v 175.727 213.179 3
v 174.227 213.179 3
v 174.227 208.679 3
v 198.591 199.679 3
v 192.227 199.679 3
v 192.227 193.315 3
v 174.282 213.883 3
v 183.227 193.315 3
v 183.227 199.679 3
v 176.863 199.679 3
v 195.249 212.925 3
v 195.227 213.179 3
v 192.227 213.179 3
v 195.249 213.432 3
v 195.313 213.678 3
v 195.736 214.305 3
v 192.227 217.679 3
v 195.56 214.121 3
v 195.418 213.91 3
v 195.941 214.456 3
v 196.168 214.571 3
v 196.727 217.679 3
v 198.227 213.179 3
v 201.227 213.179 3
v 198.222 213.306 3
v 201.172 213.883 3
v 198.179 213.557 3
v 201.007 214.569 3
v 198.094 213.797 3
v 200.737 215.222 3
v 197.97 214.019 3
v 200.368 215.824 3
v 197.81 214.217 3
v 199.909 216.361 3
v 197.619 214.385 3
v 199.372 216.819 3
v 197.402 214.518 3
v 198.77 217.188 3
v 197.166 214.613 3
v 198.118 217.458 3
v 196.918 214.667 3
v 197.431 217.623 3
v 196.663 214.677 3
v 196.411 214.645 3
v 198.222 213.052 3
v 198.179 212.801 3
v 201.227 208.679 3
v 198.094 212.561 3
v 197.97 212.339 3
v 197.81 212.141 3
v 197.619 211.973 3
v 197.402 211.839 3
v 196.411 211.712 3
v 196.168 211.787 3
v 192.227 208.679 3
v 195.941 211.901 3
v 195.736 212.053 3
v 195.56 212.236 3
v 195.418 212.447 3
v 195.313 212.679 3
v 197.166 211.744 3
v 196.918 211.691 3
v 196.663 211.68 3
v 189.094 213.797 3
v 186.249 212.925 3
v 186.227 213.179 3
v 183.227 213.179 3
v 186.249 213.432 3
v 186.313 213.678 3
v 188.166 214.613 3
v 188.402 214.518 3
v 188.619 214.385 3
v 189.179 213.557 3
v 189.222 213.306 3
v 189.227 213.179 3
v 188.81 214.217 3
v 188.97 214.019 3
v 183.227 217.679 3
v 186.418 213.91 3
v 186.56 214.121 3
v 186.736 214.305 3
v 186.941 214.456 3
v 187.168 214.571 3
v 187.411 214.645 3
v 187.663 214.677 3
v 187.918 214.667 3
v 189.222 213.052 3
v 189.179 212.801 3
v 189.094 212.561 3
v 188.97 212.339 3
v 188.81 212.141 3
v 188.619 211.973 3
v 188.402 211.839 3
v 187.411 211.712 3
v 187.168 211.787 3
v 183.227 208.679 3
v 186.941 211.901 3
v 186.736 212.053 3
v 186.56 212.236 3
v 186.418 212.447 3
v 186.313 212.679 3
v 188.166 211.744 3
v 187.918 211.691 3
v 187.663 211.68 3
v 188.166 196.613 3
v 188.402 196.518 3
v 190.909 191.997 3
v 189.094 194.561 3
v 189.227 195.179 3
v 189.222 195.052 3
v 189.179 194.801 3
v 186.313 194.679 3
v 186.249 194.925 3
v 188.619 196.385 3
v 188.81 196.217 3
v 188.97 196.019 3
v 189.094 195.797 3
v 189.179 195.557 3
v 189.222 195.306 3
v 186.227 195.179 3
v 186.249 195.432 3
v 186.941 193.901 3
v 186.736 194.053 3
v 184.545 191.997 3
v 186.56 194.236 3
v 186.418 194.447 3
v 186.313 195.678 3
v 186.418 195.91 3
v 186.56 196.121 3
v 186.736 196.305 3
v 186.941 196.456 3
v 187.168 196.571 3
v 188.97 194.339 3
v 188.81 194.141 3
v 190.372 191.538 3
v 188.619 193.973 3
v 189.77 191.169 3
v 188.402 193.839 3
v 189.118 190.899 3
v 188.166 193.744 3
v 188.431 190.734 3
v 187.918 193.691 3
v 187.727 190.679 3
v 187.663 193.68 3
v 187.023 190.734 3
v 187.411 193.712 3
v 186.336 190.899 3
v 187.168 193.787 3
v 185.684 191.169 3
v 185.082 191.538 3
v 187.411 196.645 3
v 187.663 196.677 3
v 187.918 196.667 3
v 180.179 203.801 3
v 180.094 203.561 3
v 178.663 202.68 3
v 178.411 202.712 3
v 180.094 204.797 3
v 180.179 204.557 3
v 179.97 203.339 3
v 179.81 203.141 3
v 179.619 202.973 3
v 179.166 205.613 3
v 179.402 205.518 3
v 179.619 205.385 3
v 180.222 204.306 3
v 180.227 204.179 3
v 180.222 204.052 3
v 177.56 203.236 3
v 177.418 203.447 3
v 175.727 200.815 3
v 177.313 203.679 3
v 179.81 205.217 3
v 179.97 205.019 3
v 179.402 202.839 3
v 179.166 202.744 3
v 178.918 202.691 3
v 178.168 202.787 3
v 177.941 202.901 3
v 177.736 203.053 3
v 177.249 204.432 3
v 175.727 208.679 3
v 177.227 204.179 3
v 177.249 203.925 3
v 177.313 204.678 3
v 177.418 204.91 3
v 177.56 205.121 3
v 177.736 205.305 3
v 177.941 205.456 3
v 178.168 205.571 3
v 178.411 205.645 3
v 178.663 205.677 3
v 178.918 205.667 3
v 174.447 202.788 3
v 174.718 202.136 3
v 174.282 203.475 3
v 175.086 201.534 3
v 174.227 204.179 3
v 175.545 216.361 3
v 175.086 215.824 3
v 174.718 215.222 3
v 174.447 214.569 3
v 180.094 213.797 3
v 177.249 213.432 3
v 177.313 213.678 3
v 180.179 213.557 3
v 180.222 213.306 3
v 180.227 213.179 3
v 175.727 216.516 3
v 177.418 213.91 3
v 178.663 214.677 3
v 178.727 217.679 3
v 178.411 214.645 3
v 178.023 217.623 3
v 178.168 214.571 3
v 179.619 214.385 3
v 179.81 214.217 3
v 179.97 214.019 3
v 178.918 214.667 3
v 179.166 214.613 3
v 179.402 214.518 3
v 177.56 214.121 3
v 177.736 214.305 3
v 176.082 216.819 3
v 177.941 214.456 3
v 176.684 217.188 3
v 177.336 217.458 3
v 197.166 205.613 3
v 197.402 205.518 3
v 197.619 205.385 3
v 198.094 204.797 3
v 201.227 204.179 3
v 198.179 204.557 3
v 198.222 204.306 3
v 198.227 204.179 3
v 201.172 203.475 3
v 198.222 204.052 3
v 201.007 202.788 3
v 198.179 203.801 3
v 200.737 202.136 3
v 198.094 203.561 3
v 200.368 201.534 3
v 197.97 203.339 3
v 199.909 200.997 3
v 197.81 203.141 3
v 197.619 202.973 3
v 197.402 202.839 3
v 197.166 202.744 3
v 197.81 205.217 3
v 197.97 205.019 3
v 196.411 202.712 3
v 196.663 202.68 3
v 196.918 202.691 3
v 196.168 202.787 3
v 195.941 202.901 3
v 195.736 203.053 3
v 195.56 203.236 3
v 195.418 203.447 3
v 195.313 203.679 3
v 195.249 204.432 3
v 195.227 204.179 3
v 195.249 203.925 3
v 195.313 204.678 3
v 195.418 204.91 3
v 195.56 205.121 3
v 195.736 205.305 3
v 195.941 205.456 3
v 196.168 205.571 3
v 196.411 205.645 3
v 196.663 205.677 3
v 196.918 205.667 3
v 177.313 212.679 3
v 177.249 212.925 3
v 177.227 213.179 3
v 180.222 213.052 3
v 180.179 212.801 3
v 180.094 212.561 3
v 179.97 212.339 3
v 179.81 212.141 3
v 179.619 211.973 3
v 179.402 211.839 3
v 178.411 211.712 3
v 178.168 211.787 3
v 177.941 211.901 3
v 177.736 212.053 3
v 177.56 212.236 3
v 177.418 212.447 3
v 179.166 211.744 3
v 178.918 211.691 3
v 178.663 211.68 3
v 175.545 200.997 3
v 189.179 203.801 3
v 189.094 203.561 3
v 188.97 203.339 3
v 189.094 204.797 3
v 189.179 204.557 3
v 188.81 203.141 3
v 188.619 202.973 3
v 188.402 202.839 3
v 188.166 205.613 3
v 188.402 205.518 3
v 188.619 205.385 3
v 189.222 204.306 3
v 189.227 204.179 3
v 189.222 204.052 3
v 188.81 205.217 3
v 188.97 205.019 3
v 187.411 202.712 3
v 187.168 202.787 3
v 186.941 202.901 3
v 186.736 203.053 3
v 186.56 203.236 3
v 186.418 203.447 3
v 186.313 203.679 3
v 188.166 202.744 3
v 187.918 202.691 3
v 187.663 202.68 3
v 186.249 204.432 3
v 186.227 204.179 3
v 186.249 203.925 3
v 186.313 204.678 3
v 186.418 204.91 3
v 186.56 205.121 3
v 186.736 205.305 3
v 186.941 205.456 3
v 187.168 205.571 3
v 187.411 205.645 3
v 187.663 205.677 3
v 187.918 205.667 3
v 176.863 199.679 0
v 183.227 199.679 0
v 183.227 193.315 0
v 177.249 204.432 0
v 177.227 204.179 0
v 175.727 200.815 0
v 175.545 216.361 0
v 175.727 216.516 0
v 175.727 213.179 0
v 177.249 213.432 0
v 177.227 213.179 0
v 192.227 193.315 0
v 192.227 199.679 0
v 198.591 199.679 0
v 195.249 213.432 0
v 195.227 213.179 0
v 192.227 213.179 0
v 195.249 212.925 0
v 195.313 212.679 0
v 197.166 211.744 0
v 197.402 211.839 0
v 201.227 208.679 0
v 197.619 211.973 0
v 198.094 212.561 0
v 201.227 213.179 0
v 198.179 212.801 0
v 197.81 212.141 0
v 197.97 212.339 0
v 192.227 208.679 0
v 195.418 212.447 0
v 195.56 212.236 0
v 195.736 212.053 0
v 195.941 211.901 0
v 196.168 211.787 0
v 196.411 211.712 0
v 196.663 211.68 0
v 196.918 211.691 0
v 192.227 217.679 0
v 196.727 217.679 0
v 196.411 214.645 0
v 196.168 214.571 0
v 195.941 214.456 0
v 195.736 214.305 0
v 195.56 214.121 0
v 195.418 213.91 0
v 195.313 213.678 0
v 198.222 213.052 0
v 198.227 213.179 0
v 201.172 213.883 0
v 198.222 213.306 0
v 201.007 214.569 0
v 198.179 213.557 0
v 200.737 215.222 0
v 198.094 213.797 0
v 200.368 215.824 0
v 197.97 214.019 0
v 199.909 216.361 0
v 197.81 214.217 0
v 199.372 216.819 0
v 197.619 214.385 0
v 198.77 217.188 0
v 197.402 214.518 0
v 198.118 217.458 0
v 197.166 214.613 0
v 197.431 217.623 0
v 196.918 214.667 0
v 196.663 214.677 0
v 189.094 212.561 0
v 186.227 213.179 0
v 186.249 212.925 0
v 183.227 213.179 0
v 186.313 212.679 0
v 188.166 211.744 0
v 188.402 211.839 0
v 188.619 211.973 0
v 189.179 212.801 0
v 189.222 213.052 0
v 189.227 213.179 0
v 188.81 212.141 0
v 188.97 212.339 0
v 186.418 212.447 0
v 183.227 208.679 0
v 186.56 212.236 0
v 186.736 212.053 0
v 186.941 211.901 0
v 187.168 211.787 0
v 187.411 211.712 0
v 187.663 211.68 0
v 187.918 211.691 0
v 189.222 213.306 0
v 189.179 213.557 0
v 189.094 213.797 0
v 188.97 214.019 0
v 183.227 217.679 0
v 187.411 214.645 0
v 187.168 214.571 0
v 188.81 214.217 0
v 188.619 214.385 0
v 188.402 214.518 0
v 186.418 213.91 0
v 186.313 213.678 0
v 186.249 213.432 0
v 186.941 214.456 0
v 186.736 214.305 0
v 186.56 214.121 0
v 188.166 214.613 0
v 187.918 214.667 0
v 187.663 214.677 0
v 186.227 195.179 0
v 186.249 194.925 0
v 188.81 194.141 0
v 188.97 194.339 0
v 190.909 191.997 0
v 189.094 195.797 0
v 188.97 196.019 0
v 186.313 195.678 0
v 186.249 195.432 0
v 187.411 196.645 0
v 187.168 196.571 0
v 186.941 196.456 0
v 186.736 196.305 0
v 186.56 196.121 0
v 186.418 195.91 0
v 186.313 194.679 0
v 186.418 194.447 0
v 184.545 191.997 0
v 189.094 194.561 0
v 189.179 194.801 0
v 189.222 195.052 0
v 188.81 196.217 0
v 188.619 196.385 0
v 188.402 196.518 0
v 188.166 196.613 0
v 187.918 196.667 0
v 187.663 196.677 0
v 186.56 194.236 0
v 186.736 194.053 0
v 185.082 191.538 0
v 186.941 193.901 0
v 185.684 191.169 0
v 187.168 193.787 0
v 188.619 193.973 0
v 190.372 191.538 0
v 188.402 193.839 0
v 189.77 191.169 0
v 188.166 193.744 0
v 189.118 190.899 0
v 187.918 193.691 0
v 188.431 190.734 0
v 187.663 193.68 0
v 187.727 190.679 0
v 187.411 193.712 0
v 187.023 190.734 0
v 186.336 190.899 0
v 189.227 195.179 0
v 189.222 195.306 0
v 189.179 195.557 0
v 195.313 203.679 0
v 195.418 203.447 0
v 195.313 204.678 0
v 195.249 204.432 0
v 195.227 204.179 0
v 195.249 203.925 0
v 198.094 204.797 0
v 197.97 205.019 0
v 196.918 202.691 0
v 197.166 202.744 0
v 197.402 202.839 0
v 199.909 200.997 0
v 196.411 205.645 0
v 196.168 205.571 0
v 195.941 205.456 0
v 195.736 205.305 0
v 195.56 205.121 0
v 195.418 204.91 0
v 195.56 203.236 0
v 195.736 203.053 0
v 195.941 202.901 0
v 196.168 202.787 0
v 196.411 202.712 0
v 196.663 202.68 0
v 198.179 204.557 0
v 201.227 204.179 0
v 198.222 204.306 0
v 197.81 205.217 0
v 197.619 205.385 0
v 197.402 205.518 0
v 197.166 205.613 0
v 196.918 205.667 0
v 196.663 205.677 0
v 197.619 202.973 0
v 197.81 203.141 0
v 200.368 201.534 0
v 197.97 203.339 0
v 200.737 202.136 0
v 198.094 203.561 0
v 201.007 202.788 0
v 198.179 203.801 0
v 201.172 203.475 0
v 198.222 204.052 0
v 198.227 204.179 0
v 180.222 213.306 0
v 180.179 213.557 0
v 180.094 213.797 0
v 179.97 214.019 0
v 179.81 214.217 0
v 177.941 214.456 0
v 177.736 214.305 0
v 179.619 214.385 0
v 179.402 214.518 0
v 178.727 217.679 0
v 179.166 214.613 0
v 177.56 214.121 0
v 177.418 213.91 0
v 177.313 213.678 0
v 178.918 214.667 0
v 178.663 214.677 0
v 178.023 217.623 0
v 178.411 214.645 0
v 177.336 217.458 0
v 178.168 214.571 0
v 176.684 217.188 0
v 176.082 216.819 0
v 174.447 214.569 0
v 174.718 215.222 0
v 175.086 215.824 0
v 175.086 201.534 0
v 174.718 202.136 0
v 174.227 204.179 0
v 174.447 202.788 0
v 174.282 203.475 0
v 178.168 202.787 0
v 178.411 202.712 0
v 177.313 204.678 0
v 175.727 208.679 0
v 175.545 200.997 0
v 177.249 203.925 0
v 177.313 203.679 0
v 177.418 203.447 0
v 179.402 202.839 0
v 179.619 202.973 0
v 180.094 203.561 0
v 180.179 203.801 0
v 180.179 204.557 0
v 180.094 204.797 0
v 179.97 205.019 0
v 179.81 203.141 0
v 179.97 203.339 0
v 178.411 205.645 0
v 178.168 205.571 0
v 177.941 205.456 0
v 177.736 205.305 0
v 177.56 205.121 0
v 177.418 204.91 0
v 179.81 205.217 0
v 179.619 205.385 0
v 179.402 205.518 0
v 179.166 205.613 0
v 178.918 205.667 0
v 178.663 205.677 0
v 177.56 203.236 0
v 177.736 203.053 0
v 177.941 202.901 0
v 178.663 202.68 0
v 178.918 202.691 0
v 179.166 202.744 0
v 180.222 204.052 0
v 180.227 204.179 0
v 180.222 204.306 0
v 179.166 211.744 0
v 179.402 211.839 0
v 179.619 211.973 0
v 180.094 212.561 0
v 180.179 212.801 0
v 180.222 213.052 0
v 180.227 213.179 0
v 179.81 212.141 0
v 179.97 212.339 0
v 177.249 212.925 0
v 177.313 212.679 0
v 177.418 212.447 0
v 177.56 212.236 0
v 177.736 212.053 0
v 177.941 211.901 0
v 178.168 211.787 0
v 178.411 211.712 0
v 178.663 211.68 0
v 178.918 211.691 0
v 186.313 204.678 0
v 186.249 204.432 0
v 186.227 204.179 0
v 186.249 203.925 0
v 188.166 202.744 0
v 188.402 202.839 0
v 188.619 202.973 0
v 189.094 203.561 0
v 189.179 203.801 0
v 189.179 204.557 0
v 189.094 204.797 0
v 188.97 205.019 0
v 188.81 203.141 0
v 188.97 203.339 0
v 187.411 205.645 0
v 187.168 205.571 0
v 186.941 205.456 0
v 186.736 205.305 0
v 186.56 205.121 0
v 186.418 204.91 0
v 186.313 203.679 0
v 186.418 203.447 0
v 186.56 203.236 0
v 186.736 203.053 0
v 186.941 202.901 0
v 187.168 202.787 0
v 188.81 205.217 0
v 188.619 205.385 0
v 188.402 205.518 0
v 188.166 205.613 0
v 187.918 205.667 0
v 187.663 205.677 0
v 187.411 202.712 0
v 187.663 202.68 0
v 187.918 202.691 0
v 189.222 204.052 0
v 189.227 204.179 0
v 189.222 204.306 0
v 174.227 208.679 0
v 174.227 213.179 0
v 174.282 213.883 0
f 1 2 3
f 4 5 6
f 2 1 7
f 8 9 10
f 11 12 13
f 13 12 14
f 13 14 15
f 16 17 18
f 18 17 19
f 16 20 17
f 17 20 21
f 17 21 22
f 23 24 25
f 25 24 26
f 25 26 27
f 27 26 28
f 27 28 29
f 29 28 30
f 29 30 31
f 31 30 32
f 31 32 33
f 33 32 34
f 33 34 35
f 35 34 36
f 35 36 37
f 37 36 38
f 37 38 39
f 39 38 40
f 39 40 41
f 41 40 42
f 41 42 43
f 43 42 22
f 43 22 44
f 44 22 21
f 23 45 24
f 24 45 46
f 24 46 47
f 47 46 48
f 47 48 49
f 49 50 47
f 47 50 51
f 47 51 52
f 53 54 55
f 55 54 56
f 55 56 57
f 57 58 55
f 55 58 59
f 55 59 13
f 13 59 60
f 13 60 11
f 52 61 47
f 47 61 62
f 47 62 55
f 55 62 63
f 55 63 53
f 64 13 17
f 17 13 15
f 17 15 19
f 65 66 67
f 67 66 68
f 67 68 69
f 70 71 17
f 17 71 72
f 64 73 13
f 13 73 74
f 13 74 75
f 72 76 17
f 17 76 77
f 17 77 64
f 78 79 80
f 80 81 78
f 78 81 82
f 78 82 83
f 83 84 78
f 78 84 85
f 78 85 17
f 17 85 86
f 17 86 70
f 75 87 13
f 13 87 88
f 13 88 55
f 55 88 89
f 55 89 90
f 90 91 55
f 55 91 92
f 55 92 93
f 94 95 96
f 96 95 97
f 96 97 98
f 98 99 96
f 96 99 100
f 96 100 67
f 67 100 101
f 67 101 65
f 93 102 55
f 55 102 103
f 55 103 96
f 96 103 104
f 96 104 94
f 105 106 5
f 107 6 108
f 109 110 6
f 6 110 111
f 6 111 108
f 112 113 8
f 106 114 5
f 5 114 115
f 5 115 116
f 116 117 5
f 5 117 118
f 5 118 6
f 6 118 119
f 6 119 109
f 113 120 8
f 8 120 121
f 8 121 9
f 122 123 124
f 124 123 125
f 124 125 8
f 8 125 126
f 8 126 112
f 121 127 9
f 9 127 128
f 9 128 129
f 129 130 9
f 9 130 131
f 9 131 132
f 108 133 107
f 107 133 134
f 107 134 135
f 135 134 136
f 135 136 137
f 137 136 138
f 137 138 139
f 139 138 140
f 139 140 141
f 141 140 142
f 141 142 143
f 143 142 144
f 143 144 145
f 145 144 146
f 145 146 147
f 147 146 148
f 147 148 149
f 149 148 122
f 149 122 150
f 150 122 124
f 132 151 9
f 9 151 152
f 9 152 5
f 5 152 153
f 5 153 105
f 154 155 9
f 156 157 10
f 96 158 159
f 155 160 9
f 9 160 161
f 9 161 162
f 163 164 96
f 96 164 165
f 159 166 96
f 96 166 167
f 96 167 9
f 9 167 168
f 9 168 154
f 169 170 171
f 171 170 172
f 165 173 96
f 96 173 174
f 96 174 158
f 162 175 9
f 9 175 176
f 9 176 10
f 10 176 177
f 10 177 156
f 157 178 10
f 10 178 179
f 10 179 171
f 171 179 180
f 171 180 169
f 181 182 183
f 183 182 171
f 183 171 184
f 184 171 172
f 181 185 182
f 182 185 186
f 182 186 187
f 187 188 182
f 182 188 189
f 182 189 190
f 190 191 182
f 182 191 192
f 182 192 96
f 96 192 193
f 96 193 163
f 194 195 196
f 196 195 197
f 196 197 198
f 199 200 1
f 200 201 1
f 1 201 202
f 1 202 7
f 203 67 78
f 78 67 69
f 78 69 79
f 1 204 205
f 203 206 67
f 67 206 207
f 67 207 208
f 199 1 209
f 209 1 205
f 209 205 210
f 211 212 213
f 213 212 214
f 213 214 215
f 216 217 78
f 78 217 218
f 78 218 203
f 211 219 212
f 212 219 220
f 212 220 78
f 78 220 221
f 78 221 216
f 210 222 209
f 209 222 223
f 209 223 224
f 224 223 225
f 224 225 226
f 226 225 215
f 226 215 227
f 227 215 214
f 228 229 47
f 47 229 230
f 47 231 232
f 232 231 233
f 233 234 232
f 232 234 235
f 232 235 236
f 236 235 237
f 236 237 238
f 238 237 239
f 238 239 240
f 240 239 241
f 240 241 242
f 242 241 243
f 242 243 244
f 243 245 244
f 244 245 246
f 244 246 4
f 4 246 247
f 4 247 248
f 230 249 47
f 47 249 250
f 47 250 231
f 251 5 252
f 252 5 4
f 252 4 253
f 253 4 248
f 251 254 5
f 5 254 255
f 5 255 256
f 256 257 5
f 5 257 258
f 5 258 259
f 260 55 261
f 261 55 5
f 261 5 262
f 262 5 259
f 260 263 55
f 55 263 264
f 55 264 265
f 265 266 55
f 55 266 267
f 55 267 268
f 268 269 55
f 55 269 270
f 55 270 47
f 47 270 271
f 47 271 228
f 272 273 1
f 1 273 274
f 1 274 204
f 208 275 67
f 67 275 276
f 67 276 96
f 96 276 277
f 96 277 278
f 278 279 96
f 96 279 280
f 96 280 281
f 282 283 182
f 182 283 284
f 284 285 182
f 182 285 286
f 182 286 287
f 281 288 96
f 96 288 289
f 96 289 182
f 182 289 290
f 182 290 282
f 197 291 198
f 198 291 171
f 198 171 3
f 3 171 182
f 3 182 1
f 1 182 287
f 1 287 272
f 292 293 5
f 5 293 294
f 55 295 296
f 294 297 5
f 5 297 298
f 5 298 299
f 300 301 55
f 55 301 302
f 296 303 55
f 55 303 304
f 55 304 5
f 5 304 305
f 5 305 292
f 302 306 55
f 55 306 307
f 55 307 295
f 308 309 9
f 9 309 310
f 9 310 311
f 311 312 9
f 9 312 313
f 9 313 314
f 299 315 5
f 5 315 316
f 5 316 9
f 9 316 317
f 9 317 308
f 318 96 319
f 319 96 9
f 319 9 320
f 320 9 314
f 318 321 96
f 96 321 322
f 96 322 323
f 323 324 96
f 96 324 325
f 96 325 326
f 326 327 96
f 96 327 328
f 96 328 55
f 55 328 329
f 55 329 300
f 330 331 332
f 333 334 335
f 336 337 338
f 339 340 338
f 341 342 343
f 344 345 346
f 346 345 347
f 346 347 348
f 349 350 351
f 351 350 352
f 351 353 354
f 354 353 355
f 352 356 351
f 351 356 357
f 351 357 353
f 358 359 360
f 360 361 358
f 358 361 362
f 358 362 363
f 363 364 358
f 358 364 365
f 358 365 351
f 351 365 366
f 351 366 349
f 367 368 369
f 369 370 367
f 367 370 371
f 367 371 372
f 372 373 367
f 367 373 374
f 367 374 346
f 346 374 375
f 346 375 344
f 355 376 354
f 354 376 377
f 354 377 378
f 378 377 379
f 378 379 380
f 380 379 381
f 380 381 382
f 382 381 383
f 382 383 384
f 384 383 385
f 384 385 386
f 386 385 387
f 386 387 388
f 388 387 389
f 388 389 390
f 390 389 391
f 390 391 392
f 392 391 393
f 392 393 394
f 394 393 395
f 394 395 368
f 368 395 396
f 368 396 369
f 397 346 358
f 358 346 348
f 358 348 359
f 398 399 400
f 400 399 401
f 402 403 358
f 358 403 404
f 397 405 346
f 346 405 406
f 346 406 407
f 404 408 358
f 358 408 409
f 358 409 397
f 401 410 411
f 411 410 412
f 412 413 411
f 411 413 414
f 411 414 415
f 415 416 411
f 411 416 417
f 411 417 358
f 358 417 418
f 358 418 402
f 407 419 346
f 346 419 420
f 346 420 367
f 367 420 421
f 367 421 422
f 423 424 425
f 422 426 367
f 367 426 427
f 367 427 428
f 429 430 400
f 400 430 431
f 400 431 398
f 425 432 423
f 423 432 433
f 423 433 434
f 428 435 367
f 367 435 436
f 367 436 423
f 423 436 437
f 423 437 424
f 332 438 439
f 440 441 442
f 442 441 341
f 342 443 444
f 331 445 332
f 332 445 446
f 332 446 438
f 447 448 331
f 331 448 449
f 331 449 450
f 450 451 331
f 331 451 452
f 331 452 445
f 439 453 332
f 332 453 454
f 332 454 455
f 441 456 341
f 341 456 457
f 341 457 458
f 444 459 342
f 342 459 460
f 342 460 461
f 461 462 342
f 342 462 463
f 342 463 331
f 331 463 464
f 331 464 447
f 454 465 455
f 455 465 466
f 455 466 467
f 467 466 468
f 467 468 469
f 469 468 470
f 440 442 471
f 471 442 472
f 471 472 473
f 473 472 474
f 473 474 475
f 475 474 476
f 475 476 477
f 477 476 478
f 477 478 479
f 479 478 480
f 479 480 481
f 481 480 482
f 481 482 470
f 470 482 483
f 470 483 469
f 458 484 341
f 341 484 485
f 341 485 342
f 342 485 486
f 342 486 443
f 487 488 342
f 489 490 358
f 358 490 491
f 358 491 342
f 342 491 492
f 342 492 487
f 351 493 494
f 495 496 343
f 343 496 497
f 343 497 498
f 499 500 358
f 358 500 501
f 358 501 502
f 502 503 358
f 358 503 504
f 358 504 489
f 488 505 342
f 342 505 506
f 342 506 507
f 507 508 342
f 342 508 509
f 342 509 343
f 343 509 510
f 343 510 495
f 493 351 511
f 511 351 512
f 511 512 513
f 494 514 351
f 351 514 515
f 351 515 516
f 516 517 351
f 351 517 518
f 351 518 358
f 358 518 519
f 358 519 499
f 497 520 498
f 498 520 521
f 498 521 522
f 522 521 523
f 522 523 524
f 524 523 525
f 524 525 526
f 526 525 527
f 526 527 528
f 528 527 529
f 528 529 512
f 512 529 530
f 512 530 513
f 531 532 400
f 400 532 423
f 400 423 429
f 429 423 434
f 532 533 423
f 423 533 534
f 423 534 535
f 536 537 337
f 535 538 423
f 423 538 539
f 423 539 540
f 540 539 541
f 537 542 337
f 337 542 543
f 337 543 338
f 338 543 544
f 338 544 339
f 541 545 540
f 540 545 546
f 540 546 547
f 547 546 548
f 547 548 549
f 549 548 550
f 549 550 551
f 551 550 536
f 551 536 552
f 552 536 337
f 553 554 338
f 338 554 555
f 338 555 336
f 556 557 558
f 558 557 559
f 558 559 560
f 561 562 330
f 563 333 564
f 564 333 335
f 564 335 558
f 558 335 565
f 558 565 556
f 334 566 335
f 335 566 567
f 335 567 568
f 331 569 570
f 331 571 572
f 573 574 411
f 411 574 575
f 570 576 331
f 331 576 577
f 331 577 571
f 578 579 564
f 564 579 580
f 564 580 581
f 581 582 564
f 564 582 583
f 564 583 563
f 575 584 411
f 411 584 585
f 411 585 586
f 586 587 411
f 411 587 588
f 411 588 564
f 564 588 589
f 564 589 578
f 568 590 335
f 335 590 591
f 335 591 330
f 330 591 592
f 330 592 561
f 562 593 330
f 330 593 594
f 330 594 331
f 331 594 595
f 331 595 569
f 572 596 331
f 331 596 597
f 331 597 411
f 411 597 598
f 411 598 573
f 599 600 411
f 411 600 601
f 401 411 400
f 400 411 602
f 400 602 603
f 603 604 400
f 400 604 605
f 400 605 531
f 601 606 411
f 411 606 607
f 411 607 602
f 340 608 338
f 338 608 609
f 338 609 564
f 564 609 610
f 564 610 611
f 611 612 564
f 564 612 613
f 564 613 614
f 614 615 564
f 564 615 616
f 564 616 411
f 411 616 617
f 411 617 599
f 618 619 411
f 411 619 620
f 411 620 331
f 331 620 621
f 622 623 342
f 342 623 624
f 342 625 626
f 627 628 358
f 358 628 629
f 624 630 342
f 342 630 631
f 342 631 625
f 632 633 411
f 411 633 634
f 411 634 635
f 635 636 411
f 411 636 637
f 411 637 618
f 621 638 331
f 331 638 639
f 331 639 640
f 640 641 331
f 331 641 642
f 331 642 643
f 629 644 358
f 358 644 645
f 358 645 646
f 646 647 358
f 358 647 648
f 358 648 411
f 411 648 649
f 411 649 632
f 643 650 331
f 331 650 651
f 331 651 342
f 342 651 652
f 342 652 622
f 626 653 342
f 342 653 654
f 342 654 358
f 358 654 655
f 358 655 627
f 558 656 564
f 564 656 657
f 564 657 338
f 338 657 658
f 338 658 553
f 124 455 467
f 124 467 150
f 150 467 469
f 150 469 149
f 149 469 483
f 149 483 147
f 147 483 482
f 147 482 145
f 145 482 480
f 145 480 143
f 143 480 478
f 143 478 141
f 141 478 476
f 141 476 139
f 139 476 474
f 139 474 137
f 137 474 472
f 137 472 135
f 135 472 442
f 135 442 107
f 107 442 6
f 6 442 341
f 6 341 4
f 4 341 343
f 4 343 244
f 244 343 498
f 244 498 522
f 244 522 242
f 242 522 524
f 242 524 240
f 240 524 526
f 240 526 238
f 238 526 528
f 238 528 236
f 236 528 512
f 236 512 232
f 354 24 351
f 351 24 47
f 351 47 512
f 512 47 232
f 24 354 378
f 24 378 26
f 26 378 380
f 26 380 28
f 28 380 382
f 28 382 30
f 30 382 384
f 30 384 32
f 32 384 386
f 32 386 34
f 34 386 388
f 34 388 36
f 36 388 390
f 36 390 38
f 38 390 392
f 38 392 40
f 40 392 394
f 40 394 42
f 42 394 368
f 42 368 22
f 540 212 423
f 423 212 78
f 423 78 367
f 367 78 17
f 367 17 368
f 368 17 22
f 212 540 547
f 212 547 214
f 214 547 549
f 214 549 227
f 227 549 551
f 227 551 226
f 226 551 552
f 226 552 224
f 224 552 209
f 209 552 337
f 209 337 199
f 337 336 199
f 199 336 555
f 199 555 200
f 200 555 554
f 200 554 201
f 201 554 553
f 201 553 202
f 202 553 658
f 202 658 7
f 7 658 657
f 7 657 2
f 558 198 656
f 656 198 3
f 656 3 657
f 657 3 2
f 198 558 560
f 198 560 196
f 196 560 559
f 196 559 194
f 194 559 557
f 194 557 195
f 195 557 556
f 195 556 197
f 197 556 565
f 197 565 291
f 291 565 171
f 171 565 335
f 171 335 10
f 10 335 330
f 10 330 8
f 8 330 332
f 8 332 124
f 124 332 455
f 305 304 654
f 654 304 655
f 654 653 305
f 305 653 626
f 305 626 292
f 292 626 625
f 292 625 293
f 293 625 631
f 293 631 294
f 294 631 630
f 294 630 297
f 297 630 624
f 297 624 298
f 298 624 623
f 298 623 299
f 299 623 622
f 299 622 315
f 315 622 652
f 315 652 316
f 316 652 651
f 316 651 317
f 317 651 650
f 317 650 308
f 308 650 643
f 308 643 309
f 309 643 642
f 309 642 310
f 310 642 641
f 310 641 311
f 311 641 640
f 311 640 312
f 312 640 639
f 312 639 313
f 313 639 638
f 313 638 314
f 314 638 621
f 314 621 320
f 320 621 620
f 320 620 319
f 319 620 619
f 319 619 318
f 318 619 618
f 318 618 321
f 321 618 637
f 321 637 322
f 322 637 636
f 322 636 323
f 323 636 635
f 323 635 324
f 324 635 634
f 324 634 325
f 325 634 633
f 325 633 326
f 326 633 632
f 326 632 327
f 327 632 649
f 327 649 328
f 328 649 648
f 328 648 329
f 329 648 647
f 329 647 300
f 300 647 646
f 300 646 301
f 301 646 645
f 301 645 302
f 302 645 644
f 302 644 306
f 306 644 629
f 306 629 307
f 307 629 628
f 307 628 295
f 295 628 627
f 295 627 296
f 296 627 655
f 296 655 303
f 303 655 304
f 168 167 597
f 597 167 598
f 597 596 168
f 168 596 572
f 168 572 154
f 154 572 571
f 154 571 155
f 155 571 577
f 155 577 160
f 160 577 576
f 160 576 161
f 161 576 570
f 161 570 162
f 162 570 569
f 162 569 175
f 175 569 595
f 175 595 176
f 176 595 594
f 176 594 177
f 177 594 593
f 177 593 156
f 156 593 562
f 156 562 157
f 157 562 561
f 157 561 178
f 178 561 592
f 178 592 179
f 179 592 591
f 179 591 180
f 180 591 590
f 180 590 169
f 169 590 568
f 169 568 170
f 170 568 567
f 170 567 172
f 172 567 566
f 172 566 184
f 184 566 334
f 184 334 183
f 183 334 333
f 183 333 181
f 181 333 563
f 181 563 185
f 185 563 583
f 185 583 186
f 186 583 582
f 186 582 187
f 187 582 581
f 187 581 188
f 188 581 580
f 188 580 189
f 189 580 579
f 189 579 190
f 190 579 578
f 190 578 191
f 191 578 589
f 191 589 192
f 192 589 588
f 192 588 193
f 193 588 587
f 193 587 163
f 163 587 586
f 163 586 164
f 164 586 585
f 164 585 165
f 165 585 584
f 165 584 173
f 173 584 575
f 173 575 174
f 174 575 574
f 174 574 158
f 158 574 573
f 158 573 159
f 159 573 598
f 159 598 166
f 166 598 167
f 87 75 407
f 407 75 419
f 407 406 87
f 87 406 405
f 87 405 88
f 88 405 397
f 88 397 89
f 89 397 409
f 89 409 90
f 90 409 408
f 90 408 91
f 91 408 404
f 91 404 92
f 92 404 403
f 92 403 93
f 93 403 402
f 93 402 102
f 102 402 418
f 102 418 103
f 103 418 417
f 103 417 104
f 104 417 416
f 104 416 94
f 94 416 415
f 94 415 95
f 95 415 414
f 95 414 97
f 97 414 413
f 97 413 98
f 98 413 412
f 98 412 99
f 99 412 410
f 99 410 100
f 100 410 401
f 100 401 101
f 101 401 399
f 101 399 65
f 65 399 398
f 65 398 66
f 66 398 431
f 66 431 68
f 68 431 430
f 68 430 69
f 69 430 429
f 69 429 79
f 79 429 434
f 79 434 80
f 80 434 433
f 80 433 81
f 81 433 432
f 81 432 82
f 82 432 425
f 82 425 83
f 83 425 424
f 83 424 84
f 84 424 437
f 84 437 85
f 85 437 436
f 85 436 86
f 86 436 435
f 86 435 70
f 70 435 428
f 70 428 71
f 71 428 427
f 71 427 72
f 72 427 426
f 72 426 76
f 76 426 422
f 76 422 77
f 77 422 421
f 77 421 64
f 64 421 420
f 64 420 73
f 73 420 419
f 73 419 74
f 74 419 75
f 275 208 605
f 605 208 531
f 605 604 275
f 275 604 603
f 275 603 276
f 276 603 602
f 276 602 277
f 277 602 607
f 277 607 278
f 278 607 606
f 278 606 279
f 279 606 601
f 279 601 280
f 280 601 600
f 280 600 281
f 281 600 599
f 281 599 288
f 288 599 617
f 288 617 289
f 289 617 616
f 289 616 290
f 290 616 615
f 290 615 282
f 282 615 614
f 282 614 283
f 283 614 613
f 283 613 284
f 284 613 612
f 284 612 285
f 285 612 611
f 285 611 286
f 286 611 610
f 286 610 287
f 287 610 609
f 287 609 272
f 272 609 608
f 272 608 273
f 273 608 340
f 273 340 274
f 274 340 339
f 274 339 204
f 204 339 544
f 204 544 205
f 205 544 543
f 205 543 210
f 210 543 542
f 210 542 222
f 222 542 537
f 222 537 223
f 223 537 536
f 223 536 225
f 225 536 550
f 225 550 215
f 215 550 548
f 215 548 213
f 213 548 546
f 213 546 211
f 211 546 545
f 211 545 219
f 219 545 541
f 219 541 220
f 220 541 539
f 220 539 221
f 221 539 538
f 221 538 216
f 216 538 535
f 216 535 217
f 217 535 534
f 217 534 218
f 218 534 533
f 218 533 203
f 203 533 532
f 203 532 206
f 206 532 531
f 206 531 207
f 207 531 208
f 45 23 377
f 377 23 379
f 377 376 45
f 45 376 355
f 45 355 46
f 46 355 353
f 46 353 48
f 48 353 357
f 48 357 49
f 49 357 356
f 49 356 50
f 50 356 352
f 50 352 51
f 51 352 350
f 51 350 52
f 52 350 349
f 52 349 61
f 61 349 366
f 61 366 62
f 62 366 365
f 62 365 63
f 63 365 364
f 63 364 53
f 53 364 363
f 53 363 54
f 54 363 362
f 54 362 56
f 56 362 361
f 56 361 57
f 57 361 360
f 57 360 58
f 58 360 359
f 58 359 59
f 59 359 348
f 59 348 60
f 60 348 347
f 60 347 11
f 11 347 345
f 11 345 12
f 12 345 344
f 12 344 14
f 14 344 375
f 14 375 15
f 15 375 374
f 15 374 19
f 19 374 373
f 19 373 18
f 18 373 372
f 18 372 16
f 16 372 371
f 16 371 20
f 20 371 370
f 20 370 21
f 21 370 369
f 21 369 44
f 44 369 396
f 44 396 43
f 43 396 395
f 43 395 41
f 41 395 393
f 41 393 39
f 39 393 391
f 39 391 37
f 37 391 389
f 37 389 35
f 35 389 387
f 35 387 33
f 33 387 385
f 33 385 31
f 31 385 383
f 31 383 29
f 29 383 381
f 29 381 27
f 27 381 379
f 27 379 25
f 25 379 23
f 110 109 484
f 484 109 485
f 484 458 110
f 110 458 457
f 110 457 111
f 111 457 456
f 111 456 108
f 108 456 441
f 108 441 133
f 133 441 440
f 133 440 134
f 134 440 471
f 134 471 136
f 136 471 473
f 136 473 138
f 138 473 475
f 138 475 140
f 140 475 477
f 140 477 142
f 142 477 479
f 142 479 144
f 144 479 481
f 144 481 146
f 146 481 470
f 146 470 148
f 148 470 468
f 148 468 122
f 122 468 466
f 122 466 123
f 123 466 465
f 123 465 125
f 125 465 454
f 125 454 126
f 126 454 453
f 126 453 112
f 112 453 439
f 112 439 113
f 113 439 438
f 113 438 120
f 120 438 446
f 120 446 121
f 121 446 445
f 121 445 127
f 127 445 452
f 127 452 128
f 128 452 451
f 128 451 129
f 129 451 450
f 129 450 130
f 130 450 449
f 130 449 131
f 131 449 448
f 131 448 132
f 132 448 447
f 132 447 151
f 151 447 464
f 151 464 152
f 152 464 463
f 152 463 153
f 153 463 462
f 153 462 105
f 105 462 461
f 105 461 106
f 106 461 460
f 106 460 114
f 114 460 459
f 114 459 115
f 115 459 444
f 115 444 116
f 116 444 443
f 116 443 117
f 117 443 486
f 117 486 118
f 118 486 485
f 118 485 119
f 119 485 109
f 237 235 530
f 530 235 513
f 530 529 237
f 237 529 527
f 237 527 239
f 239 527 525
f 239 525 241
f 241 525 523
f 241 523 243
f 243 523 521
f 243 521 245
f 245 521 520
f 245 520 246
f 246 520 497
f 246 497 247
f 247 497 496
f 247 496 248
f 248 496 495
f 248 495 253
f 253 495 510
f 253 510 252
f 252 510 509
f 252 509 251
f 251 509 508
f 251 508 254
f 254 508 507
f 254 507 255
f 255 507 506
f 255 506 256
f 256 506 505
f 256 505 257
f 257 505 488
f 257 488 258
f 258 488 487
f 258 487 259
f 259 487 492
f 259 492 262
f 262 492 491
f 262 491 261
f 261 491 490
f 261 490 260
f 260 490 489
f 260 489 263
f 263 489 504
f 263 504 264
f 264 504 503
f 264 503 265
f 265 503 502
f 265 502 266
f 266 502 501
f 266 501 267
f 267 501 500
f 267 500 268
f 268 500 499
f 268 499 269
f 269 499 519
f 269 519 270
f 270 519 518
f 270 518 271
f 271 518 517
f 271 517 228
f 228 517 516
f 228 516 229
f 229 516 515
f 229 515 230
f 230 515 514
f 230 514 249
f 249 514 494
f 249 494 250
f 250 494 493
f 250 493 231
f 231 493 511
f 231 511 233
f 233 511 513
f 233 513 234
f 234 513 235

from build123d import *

# Parameters (mm, degrees)
MODEL_R                 = 1.5
SALIENTE_EXTRUIR1_DEPTH = 3


with BuildPart() as part:
    # Model → Saliente-Extruir1 (new body)
    with BuildSketch(Plane.XY):
        with BuildLine():
            Line((174.227054575, 213.178720063), (174.227054575, 204.178720063))
            ThreePointArc((174.227054575, 204.178720063), (174.569596678, 202.456644617), (175.545074059, 200.996739548))
            Line((175.545074059, 200.996739548), (184.545074059, 191.996739548))
            ThreePointArc((184.545074059, 191.996739548), (187.727054575, 190.678720063), (190.90903509, 191.996739548))
            Line((190.90903509, 191.996739548), (199.90903509, 200.996739548))
            ThreePointArc((199.90903509, 200.996739548), (200.884512471, 202.456644617), (201.227054575, 204.178720063))
            Line((201.227054575, 204.178720063), (201.227054575, 213.178720063))
            ThreePointArc((201.227054575, 213.178720063), (199.90903509, 216.360700578), (196.727054575, 217.678720063))
            Line((196.727054575, 217.678720063), (178.727054575, 217.678720063))
            ThreePointArc((178.727054575, 217.678720063), (175.545074059, 216.360700578), (174.227054575, 213.178720063))
        make_face()
        with Locations((187.727054575, 204.178720063)):
            Circle(MODEL_R, mode=Mode.SUBTRACT)
        with Locations((178.727054575, 204.178720063)):
            Circle(MODEL_R, mode=Mode.SUBTRACT)
        with Locations((187.727054575, 213.178720063)):
            Circle(MODEL_R, mode=Mode.SUBTRACT)
        with Locations((178.727054575, 213.178720063)):
            Circle(MODEL_R, mode=Mode.SUBTRACT)
        with Locations((196.727054575, 213.178720063)):
            Circle(MODEL_R, mode=Mode.SUBTRACT)
        with Locations((187.727054575, 195.178720063)):
            Circle(MODEL_R, mode=Mode.SUBTRACT)
        with Locations((196.727054575, 204.178720063)):
            Circle(MODEL_R, mode=Mode.SUBTRACT)
    extrude(amount=SALIENTE_EXTRUIR1_DEPTH)


solid = part.part
